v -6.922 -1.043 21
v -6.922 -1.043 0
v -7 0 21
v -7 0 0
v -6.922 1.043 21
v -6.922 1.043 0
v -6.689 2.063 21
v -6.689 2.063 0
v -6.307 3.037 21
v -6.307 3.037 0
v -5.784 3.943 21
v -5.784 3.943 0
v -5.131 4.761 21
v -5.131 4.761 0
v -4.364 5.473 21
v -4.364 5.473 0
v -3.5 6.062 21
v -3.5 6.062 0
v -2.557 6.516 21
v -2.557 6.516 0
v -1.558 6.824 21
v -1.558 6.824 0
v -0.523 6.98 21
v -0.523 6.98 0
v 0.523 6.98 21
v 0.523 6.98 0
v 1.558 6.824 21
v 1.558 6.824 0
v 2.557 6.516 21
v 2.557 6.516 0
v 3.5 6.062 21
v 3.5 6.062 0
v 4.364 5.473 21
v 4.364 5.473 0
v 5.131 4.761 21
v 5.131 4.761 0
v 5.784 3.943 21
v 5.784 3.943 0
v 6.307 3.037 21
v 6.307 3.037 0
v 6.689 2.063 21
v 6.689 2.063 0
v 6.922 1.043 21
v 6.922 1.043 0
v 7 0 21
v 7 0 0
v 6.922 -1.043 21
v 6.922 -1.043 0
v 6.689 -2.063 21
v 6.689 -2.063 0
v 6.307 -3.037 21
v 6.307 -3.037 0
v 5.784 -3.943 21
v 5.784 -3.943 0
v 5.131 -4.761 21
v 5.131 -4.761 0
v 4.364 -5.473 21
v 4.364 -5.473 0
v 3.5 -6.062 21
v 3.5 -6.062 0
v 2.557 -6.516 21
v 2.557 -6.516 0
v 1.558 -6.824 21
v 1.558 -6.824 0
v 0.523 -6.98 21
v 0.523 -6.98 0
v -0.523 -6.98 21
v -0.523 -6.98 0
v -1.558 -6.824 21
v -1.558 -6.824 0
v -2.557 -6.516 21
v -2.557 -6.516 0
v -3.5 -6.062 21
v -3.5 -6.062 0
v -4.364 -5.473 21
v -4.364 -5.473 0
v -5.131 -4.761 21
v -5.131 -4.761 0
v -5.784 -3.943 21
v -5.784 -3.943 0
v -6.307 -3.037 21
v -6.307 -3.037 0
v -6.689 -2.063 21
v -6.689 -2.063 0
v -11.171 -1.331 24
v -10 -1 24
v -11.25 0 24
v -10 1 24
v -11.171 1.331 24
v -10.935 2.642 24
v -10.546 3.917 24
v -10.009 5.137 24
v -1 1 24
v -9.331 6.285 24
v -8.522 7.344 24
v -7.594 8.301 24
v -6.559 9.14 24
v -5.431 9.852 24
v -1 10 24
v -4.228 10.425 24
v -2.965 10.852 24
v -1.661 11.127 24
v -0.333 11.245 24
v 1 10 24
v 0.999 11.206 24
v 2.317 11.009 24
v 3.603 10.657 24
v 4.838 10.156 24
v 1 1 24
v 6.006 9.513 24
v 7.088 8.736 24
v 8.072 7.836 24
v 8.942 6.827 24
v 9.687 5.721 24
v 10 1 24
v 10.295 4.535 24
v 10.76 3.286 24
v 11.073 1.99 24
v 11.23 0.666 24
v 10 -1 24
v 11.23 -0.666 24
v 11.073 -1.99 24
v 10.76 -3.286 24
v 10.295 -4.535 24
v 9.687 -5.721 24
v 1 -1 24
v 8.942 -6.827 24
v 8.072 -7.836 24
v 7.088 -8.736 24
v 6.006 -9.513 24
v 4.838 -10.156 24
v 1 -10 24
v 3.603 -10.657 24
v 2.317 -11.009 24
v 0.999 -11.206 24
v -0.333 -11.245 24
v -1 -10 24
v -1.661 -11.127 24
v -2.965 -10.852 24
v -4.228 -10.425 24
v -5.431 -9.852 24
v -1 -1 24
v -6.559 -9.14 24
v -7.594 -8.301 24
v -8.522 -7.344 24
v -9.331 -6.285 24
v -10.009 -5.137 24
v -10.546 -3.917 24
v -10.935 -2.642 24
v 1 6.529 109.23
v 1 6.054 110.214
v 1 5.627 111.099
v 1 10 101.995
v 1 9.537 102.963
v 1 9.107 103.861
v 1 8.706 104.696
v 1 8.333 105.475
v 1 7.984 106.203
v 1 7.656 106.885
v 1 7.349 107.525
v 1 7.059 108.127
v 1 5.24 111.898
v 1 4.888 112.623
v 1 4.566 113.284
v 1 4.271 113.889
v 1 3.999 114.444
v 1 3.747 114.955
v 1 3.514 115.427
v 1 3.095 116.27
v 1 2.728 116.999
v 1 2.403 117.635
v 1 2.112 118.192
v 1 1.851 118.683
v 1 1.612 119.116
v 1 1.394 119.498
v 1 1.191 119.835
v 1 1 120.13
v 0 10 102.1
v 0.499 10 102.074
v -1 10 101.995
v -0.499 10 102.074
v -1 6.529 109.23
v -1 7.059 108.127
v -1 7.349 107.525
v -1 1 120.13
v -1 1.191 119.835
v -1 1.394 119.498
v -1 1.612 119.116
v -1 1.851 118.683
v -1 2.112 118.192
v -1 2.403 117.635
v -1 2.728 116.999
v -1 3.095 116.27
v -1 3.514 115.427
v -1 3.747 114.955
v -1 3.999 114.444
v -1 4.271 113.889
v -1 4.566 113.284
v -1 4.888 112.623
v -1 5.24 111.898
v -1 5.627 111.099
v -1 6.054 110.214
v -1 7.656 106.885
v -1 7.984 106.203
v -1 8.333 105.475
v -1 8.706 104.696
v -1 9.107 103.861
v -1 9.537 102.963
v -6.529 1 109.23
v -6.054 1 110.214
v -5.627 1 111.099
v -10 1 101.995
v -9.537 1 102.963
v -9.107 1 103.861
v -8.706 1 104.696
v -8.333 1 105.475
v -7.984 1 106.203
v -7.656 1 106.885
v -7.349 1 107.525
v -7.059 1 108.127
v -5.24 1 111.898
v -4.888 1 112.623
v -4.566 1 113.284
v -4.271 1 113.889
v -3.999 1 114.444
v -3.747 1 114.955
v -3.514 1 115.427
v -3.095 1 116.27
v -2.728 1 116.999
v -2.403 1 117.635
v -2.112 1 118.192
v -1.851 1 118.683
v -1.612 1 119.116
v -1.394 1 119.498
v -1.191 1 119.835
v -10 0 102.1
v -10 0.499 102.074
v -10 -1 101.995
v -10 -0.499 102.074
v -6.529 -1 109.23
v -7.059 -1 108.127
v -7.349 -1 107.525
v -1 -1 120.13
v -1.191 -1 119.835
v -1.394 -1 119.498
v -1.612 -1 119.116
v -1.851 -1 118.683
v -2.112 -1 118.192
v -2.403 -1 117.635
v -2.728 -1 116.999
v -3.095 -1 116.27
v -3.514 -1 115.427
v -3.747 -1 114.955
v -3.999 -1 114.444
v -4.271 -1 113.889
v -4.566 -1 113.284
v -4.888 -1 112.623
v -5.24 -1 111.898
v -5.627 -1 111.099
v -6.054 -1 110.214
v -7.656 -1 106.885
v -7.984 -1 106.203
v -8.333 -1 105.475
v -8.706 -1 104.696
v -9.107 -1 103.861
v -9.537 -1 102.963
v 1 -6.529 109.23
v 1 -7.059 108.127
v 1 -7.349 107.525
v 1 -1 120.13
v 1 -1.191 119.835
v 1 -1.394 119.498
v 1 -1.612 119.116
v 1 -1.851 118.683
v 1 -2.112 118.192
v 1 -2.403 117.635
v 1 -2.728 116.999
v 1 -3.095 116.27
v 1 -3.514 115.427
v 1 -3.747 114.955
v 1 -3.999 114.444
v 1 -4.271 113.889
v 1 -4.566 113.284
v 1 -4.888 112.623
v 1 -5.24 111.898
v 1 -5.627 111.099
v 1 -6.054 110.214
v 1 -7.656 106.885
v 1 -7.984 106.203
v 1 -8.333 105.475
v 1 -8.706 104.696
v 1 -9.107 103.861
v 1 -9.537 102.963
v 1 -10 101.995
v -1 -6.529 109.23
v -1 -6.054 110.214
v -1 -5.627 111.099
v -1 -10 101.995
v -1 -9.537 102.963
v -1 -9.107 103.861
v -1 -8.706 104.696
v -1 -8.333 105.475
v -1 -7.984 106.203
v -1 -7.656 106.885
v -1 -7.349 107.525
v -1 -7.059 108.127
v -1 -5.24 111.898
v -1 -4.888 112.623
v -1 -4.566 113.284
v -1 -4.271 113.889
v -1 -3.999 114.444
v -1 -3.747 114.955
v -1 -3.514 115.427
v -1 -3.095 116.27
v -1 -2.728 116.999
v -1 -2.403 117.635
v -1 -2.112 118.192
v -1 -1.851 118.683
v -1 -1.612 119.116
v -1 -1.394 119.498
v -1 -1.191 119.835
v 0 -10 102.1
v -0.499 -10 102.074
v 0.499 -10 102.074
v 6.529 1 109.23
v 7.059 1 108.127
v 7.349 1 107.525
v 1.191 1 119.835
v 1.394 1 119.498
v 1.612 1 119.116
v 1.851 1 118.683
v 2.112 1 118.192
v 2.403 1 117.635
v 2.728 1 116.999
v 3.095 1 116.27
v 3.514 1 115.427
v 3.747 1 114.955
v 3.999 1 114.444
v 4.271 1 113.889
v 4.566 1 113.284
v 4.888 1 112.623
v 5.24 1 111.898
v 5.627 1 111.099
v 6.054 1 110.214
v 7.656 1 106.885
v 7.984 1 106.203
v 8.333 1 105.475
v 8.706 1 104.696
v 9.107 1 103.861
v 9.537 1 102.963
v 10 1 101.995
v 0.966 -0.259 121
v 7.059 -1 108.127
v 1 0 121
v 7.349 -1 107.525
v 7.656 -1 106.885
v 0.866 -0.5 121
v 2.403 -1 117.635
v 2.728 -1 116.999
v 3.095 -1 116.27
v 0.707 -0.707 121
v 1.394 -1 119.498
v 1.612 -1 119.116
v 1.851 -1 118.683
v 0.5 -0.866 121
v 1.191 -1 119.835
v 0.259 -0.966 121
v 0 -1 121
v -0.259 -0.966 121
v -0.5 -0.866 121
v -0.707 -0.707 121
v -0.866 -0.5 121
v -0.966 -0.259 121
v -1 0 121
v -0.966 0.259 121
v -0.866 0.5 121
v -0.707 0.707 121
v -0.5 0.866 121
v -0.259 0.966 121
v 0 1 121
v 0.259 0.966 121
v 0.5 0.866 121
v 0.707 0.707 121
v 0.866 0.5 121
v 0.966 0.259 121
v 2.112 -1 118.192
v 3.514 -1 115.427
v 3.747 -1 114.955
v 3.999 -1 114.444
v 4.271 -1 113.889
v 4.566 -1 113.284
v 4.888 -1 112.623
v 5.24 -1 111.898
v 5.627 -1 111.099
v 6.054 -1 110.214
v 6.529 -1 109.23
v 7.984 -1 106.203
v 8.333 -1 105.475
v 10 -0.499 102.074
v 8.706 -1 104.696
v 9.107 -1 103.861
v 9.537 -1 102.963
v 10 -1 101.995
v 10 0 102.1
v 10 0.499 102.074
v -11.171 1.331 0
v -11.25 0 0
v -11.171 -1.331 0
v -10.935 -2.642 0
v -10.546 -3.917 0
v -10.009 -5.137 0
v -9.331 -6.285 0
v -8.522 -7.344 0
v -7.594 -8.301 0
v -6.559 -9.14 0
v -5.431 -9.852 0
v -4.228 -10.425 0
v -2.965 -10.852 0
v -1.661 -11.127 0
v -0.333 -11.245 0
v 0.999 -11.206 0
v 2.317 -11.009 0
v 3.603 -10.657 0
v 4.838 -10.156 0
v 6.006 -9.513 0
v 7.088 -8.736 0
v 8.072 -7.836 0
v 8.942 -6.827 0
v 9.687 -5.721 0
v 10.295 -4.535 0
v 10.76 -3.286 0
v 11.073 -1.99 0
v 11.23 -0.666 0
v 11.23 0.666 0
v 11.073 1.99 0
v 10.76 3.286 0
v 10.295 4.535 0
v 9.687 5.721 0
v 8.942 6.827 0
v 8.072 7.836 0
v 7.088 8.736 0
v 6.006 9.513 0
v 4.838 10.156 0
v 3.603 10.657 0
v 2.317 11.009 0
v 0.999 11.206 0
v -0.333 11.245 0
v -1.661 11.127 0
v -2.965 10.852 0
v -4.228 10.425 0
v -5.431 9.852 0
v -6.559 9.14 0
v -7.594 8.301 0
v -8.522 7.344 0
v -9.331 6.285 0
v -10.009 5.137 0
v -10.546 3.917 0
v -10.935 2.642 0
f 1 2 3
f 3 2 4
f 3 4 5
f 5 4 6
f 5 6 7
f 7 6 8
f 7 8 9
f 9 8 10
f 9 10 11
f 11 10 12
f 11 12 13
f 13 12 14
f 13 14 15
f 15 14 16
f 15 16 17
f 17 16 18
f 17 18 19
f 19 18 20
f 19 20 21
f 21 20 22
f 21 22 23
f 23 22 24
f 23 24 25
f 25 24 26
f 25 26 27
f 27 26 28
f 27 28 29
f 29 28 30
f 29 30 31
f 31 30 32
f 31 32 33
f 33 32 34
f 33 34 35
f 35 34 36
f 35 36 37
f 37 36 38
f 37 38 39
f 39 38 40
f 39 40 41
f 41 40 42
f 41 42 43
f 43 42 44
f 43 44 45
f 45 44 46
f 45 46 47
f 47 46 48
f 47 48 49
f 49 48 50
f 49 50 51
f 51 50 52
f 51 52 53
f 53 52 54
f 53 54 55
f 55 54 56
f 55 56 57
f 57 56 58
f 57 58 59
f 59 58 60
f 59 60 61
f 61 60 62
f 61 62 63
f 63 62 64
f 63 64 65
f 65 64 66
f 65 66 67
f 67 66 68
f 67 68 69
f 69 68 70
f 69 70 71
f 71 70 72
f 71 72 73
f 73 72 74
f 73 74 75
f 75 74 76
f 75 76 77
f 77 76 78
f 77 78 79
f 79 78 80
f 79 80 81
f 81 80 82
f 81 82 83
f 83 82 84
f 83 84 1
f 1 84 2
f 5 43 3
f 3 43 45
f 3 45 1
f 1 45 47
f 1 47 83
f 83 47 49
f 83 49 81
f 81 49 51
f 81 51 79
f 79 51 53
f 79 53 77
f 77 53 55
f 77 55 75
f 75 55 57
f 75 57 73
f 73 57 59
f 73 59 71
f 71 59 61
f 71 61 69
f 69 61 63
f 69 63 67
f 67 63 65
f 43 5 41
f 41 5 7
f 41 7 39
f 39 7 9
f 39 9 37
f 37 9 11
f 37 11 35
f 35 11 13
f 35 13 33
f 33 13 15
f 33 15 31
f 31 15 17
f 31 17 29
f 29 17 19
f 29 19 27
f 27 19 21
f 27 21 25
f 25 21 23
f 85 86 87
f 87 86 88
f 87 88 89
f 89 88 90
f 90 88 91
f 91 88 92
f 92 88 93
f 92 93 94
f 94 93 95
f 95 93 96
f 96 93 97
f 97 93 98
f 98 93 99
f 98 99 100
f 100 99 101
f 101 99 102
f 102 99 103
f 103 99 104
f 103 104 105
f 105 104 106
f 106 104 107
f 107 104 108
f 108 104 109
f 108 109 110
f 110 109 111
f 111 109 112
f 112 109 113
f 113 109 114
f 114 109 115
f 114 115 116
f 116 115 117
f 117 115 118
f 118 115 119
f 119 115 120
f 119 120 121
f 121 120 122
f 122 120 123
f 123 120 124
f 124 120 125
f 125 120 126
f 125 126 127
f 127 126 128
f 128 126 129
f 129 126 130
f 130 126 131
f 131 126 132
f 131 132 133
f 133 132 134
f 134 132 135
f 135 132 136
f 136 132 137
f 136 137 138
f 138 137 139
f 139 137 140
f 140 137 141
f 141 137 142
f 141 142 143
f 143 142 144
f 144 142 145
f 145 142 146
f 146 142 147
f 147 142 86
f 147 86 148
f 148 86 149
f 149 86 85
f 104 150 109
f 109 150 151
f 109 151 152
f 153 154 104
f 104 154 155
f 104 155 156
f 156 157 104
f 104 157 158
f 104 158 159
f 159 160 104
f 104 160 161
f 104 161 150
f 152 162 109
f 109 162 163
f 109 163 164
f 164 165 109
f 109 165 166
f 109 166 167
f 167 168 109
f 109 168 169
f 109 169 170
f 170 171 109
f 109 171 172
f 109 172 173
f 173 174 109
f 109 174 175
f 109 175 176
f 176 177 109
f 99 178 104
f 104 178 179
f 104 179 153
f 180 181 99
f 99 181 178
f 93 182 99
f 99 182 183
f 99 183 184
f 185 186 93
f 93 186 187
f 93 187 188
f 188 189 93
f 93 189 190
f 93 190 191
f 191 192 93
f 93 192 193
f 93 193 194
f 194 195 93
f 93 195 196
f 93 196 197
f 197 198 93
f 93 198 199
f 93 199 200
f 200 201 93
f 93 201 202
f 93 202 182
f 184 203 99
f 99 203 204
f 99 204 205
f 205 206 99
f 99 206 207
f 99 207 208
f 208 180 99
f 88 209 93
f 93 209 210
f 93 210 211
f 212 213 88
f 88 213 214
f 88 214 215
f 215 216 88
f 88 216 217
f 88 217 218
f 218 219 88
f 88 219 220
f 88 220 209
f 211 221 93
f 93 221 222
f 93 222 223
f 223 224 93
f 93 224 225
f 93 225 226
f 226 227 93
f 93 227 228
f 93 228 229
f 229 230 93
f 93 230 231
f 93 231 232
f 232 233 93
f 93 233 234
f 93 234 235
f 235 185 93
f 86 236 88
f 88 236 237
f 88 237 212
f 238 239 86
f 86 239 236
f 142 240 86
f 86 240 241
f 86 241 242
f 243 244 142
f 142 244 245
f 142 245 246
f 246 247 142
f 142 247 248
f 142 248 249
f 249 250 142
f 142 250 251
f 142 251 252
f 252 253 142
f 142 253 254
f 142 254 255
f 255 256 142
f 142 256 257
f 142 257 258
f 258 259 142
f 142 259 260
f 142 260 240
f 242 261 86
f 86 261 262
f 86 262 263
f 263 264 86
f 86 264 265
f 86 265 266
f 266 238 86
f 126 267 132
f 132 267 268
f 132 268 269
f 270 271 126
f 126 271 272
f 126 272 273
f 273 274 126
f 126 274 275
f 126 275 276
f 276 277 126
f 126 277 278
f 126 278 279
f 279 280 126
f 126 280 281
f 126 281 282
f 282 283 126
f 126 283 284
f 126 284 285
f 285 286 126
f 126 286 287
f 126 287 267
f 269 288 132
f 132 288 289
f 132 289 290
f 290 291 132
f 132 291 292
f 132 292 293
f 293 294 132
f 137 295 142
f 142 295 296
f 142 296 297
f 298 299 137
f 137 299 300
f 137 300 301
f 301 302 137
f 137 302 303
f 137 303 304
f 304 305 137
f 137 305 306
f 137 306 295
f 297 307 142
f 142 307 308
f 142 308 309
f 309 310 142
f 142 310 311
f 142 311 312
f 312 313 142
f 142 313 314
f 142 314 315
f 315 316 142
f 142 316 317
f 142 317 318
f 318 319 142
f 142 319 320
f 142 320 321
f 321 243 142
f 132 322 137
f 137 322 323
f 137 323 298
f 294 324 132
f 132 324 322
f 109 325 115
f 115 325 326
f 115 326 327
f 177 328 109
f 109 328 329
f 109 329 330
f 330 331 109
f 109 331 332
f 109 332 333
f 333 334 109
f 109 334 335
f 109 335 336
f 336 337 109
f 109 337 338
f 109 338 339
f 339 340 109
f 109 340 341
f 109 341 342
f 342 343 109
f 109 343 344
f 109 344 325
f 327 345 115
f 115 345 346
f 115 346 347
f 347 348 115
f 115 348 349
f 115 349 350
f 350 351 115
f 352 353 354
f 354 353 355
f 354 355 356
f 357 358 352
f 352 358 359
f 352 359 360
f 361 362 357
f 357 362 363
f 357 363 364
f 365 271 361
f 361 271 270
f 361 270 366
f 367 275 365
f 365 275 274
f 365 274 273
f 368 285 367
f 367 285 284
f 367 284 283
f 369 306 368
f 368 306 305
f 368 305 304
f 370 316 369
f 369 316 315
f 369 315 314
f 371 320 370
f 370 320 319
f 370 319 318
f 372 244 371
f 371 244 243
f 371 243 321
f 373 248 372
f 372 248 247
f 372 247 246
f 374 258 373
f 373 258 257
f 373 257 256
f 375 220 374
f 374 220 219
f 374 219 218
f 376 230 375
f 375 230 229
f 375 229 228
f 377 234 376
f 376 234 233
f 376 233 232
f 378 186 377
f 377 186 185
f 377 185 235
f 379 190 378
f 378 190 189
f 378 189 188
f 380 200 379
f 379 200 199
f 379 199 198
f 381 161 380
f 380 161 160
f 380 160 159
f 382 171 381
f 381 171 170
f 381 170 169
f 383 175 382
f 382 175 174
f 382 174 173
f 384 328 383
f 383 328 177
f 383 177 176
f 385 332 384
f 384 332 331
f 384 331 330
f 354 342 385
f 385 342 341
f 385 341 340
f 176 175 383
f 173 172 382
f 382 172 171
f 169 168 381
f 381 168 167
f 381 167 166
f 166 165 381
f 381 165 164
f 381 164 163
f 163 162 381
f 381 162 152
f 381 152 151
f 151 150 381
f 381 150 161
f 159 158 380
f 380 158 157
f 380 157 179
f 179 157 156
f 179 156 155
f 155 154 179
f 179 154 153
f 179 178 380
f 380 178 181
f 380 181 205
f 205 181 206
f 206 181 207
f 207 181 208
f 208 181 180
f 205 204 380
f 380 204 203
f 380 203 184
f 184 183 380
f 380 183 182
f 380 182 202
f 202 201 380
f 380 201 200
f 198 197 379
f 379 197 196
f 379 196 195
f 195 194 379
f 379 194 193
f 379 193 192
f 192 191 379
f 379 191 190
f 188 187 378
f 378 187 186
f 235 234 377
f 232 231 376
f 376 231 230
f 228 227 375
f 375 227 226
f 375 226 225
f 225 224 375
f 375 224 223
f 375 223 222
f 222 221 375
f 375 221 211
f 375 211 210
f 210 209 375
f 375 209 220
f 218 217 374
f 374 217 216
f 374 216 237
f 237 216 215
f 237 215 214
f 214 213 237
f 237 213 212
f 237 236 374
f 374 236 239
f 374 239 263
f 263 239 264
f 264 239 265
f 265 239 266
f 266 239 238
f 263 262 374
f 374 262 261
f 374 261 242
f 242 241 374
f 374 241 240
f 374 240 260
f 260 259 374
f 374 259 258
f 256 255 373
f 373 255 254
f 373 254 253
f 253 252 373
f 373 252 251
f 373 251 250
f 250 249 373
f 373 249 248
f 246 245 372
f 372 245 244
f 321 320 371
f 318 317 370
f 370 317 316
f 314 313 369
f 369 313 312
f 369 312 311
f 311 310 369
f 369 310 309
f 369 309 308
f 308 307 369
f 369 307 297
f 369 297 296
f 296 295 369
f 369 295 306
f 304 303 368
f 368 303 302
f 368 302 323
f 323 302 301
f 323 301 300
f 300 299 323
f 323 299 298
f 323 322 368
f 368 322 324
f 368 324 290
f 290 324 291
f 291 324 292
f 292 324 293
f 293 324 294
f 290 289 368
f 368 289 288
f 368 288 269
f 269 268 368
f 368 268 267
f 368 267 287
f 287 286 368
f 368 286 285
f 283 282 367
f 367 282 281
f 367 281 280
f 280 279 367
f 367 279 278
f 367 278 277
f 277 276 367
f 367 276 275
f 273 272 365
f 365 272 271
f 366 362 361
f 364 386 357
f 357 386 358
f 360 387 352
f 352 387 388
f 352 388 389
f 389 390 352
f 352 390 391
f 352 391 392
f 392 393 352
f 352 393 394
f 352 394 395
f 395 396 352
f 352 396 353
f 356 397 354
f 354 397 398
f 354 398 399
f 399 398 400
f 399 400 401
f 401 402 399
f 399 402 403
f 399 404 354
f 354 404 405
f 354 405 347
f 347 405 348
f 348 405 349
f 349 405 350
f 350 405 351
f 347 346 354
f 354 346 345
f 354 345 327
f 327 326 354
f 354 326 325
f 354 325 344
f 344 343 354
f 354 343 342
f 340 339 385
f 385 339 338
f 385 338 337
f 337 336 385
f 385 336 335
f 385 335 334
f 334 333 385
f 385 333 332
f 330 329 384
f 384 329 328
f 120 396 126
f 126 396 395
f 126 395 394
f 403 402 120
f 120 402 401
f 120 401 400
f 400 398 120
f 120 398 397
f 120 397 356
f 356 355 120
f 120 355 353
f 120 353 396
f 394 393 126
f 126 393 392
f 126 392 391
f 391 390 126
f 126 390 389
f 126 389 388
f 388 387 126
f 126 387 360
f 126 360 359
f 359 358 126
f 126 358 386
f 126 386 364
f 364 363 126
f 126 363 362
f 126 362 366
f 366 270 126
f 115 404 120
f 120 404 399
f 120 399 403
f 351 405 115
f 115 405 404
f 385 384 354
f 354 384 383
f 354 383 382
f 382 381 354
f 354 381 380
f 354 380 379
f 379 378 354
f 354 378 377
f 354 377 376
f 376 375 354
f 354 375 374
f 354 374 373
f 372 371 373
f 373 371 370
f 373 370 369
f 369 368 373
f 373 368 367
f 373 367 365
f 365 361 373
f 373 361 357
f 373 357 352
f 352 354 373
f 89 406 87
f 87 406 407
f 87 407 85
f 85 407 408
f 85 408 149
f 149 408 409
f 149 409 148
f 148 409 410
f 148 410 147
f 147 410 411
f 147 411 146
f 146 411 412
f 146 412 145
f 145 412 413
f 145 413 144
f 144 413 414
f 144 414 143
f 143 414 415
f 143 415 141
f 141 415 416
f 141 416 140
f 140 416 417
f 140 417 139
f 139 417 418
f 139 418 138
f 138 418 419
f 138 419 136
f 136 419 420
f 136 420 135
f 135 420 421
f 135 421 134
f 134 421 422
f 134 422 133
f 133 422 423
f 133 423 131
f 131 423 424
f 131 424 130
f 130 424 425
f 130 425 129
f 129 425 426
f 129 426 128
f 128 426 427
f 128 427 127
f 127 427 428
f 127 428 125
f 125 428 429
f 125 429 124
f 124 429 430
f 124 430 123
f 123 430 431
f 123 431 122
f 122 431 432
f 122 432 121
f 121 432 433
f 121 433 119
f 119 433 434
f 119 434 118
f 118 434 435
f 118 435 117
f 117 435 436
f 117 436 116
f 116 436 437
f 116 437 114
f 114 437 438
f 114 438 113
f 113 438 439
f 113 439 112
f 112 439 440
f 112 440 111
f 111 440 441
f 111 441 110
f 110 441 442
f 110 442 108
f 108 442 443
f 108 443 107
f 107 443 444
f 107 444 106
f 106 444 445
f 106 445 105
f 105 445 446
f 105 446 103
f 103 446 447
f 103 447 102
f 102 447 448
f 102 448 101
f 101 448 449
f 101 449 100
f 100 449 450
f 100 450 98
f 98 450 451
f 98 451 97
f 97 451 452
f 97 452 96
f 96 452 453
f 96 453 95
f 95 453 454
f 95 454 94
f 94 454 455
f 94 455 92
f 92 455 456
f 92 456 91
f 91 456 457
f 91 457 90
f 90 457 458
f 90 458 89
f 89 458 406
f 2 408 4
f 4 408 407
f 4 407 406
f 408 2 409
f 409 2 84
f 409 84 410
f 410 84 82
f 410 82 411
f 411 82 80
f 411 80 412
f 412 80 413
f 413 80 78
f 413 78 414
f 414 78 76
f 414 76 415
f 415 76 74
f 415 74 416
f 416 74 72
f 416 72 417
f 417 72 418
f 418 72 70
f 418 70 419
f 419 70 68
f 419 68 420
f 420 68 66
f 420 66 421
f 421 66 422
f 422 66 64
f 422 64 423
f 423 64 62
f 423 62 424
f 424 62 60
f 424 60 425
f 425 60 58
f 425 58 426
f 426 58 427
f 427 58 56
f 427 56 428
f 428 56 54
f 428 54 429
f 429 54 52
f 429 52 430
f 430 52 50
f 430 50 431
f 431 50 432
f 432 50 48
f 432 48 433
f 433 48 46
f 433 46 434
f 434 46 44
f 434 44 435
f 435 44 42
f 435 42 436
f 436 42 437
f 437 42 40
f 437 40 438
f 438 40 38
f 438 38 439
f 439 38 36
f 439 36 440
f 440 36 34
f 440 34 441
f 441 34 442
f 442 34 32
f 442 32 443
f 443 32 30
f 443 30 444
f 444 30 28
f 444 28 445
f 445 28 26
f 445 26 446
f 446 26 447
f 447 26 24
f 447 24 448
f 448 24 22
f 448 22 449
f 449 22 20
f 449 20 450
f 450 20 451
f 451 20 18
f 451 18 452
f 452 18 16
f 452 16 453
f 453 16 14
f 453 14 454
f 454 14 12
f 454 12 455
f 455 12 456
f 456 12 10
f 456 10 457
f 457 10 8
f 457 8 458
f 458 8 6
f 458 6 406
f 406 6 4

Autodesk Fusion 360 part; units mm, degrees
sketch "Sketch1" plane through (0, 0, 0) normal (0, 0, 1) x (1, 0, 0)
  circle A0 centre (0, 0) radius 11.25
  dimension "d1" = 22.5
extrude "Extrude1" add sketch "Sketch1" along normal blind 21 makes body 1
sketch "Sketch2" plane through (0, 0, 0) normal (0, 0, 1) x (1, 0, 0)
  line L0 (-10, 1) -> (10, 1)
  line L1 (10, 1) -> (10, -1)
  line L2 (10, -1) -> (-10, -1)
  line L3 (-10, -1) -> (-10, 1)
extrude "Extrude2" add sketch "Sketch2" along normal blind 121 separate body makes body 2
sketch "Sketch3" plane through (0, 0, 0) normal (0, 0, 1) x (1, 0, 0)
  line L0 (-1, 10) -> (1, 10)
  line L1 (1, 10) -> (1, -10)
  line L2 (1, -10) -> (-1, -10)
  line L3 (-1, -10) -> (-1, 10)
extrude "Extrude3" add sketch "Sketch3" along normal blind 121 separate body makes body 3
sketch "Sketch5" plane through (0, 0, 0) normal (0, 1, 0) x (1, 0, 0)
  line L0 (0, -123) -> (11, -123)
  line L1 (11, -123) -> (11, -100)
  line L2 (11, -100) -> (1, -121)
  line L3 (1, -121) -> (0, -121)
  line L4 (0, -121) -> (0, -123)
revolve "Revolve1" cut sketch "Sketch5" angle 360 about axis through (0, 0, 1.75) along (0, 0, 1) bodies 2 3
sketch "Sketch6" plane through (0, 0, 0) normal (0, 0, 1) x (1, 0, 0)
  circle A0 centre (0, 0) radius 7
  dimension "d9" = 14
extrude "Extrude4" add 1 faces at (1.0392, -6.3884, 21) along direction (0, 0, 1) blind 3 on bodies 1 bodies 1 2 3
extrude "Extrude5" cut sketch "Sketch6" along normal blind 21 bodies 1
